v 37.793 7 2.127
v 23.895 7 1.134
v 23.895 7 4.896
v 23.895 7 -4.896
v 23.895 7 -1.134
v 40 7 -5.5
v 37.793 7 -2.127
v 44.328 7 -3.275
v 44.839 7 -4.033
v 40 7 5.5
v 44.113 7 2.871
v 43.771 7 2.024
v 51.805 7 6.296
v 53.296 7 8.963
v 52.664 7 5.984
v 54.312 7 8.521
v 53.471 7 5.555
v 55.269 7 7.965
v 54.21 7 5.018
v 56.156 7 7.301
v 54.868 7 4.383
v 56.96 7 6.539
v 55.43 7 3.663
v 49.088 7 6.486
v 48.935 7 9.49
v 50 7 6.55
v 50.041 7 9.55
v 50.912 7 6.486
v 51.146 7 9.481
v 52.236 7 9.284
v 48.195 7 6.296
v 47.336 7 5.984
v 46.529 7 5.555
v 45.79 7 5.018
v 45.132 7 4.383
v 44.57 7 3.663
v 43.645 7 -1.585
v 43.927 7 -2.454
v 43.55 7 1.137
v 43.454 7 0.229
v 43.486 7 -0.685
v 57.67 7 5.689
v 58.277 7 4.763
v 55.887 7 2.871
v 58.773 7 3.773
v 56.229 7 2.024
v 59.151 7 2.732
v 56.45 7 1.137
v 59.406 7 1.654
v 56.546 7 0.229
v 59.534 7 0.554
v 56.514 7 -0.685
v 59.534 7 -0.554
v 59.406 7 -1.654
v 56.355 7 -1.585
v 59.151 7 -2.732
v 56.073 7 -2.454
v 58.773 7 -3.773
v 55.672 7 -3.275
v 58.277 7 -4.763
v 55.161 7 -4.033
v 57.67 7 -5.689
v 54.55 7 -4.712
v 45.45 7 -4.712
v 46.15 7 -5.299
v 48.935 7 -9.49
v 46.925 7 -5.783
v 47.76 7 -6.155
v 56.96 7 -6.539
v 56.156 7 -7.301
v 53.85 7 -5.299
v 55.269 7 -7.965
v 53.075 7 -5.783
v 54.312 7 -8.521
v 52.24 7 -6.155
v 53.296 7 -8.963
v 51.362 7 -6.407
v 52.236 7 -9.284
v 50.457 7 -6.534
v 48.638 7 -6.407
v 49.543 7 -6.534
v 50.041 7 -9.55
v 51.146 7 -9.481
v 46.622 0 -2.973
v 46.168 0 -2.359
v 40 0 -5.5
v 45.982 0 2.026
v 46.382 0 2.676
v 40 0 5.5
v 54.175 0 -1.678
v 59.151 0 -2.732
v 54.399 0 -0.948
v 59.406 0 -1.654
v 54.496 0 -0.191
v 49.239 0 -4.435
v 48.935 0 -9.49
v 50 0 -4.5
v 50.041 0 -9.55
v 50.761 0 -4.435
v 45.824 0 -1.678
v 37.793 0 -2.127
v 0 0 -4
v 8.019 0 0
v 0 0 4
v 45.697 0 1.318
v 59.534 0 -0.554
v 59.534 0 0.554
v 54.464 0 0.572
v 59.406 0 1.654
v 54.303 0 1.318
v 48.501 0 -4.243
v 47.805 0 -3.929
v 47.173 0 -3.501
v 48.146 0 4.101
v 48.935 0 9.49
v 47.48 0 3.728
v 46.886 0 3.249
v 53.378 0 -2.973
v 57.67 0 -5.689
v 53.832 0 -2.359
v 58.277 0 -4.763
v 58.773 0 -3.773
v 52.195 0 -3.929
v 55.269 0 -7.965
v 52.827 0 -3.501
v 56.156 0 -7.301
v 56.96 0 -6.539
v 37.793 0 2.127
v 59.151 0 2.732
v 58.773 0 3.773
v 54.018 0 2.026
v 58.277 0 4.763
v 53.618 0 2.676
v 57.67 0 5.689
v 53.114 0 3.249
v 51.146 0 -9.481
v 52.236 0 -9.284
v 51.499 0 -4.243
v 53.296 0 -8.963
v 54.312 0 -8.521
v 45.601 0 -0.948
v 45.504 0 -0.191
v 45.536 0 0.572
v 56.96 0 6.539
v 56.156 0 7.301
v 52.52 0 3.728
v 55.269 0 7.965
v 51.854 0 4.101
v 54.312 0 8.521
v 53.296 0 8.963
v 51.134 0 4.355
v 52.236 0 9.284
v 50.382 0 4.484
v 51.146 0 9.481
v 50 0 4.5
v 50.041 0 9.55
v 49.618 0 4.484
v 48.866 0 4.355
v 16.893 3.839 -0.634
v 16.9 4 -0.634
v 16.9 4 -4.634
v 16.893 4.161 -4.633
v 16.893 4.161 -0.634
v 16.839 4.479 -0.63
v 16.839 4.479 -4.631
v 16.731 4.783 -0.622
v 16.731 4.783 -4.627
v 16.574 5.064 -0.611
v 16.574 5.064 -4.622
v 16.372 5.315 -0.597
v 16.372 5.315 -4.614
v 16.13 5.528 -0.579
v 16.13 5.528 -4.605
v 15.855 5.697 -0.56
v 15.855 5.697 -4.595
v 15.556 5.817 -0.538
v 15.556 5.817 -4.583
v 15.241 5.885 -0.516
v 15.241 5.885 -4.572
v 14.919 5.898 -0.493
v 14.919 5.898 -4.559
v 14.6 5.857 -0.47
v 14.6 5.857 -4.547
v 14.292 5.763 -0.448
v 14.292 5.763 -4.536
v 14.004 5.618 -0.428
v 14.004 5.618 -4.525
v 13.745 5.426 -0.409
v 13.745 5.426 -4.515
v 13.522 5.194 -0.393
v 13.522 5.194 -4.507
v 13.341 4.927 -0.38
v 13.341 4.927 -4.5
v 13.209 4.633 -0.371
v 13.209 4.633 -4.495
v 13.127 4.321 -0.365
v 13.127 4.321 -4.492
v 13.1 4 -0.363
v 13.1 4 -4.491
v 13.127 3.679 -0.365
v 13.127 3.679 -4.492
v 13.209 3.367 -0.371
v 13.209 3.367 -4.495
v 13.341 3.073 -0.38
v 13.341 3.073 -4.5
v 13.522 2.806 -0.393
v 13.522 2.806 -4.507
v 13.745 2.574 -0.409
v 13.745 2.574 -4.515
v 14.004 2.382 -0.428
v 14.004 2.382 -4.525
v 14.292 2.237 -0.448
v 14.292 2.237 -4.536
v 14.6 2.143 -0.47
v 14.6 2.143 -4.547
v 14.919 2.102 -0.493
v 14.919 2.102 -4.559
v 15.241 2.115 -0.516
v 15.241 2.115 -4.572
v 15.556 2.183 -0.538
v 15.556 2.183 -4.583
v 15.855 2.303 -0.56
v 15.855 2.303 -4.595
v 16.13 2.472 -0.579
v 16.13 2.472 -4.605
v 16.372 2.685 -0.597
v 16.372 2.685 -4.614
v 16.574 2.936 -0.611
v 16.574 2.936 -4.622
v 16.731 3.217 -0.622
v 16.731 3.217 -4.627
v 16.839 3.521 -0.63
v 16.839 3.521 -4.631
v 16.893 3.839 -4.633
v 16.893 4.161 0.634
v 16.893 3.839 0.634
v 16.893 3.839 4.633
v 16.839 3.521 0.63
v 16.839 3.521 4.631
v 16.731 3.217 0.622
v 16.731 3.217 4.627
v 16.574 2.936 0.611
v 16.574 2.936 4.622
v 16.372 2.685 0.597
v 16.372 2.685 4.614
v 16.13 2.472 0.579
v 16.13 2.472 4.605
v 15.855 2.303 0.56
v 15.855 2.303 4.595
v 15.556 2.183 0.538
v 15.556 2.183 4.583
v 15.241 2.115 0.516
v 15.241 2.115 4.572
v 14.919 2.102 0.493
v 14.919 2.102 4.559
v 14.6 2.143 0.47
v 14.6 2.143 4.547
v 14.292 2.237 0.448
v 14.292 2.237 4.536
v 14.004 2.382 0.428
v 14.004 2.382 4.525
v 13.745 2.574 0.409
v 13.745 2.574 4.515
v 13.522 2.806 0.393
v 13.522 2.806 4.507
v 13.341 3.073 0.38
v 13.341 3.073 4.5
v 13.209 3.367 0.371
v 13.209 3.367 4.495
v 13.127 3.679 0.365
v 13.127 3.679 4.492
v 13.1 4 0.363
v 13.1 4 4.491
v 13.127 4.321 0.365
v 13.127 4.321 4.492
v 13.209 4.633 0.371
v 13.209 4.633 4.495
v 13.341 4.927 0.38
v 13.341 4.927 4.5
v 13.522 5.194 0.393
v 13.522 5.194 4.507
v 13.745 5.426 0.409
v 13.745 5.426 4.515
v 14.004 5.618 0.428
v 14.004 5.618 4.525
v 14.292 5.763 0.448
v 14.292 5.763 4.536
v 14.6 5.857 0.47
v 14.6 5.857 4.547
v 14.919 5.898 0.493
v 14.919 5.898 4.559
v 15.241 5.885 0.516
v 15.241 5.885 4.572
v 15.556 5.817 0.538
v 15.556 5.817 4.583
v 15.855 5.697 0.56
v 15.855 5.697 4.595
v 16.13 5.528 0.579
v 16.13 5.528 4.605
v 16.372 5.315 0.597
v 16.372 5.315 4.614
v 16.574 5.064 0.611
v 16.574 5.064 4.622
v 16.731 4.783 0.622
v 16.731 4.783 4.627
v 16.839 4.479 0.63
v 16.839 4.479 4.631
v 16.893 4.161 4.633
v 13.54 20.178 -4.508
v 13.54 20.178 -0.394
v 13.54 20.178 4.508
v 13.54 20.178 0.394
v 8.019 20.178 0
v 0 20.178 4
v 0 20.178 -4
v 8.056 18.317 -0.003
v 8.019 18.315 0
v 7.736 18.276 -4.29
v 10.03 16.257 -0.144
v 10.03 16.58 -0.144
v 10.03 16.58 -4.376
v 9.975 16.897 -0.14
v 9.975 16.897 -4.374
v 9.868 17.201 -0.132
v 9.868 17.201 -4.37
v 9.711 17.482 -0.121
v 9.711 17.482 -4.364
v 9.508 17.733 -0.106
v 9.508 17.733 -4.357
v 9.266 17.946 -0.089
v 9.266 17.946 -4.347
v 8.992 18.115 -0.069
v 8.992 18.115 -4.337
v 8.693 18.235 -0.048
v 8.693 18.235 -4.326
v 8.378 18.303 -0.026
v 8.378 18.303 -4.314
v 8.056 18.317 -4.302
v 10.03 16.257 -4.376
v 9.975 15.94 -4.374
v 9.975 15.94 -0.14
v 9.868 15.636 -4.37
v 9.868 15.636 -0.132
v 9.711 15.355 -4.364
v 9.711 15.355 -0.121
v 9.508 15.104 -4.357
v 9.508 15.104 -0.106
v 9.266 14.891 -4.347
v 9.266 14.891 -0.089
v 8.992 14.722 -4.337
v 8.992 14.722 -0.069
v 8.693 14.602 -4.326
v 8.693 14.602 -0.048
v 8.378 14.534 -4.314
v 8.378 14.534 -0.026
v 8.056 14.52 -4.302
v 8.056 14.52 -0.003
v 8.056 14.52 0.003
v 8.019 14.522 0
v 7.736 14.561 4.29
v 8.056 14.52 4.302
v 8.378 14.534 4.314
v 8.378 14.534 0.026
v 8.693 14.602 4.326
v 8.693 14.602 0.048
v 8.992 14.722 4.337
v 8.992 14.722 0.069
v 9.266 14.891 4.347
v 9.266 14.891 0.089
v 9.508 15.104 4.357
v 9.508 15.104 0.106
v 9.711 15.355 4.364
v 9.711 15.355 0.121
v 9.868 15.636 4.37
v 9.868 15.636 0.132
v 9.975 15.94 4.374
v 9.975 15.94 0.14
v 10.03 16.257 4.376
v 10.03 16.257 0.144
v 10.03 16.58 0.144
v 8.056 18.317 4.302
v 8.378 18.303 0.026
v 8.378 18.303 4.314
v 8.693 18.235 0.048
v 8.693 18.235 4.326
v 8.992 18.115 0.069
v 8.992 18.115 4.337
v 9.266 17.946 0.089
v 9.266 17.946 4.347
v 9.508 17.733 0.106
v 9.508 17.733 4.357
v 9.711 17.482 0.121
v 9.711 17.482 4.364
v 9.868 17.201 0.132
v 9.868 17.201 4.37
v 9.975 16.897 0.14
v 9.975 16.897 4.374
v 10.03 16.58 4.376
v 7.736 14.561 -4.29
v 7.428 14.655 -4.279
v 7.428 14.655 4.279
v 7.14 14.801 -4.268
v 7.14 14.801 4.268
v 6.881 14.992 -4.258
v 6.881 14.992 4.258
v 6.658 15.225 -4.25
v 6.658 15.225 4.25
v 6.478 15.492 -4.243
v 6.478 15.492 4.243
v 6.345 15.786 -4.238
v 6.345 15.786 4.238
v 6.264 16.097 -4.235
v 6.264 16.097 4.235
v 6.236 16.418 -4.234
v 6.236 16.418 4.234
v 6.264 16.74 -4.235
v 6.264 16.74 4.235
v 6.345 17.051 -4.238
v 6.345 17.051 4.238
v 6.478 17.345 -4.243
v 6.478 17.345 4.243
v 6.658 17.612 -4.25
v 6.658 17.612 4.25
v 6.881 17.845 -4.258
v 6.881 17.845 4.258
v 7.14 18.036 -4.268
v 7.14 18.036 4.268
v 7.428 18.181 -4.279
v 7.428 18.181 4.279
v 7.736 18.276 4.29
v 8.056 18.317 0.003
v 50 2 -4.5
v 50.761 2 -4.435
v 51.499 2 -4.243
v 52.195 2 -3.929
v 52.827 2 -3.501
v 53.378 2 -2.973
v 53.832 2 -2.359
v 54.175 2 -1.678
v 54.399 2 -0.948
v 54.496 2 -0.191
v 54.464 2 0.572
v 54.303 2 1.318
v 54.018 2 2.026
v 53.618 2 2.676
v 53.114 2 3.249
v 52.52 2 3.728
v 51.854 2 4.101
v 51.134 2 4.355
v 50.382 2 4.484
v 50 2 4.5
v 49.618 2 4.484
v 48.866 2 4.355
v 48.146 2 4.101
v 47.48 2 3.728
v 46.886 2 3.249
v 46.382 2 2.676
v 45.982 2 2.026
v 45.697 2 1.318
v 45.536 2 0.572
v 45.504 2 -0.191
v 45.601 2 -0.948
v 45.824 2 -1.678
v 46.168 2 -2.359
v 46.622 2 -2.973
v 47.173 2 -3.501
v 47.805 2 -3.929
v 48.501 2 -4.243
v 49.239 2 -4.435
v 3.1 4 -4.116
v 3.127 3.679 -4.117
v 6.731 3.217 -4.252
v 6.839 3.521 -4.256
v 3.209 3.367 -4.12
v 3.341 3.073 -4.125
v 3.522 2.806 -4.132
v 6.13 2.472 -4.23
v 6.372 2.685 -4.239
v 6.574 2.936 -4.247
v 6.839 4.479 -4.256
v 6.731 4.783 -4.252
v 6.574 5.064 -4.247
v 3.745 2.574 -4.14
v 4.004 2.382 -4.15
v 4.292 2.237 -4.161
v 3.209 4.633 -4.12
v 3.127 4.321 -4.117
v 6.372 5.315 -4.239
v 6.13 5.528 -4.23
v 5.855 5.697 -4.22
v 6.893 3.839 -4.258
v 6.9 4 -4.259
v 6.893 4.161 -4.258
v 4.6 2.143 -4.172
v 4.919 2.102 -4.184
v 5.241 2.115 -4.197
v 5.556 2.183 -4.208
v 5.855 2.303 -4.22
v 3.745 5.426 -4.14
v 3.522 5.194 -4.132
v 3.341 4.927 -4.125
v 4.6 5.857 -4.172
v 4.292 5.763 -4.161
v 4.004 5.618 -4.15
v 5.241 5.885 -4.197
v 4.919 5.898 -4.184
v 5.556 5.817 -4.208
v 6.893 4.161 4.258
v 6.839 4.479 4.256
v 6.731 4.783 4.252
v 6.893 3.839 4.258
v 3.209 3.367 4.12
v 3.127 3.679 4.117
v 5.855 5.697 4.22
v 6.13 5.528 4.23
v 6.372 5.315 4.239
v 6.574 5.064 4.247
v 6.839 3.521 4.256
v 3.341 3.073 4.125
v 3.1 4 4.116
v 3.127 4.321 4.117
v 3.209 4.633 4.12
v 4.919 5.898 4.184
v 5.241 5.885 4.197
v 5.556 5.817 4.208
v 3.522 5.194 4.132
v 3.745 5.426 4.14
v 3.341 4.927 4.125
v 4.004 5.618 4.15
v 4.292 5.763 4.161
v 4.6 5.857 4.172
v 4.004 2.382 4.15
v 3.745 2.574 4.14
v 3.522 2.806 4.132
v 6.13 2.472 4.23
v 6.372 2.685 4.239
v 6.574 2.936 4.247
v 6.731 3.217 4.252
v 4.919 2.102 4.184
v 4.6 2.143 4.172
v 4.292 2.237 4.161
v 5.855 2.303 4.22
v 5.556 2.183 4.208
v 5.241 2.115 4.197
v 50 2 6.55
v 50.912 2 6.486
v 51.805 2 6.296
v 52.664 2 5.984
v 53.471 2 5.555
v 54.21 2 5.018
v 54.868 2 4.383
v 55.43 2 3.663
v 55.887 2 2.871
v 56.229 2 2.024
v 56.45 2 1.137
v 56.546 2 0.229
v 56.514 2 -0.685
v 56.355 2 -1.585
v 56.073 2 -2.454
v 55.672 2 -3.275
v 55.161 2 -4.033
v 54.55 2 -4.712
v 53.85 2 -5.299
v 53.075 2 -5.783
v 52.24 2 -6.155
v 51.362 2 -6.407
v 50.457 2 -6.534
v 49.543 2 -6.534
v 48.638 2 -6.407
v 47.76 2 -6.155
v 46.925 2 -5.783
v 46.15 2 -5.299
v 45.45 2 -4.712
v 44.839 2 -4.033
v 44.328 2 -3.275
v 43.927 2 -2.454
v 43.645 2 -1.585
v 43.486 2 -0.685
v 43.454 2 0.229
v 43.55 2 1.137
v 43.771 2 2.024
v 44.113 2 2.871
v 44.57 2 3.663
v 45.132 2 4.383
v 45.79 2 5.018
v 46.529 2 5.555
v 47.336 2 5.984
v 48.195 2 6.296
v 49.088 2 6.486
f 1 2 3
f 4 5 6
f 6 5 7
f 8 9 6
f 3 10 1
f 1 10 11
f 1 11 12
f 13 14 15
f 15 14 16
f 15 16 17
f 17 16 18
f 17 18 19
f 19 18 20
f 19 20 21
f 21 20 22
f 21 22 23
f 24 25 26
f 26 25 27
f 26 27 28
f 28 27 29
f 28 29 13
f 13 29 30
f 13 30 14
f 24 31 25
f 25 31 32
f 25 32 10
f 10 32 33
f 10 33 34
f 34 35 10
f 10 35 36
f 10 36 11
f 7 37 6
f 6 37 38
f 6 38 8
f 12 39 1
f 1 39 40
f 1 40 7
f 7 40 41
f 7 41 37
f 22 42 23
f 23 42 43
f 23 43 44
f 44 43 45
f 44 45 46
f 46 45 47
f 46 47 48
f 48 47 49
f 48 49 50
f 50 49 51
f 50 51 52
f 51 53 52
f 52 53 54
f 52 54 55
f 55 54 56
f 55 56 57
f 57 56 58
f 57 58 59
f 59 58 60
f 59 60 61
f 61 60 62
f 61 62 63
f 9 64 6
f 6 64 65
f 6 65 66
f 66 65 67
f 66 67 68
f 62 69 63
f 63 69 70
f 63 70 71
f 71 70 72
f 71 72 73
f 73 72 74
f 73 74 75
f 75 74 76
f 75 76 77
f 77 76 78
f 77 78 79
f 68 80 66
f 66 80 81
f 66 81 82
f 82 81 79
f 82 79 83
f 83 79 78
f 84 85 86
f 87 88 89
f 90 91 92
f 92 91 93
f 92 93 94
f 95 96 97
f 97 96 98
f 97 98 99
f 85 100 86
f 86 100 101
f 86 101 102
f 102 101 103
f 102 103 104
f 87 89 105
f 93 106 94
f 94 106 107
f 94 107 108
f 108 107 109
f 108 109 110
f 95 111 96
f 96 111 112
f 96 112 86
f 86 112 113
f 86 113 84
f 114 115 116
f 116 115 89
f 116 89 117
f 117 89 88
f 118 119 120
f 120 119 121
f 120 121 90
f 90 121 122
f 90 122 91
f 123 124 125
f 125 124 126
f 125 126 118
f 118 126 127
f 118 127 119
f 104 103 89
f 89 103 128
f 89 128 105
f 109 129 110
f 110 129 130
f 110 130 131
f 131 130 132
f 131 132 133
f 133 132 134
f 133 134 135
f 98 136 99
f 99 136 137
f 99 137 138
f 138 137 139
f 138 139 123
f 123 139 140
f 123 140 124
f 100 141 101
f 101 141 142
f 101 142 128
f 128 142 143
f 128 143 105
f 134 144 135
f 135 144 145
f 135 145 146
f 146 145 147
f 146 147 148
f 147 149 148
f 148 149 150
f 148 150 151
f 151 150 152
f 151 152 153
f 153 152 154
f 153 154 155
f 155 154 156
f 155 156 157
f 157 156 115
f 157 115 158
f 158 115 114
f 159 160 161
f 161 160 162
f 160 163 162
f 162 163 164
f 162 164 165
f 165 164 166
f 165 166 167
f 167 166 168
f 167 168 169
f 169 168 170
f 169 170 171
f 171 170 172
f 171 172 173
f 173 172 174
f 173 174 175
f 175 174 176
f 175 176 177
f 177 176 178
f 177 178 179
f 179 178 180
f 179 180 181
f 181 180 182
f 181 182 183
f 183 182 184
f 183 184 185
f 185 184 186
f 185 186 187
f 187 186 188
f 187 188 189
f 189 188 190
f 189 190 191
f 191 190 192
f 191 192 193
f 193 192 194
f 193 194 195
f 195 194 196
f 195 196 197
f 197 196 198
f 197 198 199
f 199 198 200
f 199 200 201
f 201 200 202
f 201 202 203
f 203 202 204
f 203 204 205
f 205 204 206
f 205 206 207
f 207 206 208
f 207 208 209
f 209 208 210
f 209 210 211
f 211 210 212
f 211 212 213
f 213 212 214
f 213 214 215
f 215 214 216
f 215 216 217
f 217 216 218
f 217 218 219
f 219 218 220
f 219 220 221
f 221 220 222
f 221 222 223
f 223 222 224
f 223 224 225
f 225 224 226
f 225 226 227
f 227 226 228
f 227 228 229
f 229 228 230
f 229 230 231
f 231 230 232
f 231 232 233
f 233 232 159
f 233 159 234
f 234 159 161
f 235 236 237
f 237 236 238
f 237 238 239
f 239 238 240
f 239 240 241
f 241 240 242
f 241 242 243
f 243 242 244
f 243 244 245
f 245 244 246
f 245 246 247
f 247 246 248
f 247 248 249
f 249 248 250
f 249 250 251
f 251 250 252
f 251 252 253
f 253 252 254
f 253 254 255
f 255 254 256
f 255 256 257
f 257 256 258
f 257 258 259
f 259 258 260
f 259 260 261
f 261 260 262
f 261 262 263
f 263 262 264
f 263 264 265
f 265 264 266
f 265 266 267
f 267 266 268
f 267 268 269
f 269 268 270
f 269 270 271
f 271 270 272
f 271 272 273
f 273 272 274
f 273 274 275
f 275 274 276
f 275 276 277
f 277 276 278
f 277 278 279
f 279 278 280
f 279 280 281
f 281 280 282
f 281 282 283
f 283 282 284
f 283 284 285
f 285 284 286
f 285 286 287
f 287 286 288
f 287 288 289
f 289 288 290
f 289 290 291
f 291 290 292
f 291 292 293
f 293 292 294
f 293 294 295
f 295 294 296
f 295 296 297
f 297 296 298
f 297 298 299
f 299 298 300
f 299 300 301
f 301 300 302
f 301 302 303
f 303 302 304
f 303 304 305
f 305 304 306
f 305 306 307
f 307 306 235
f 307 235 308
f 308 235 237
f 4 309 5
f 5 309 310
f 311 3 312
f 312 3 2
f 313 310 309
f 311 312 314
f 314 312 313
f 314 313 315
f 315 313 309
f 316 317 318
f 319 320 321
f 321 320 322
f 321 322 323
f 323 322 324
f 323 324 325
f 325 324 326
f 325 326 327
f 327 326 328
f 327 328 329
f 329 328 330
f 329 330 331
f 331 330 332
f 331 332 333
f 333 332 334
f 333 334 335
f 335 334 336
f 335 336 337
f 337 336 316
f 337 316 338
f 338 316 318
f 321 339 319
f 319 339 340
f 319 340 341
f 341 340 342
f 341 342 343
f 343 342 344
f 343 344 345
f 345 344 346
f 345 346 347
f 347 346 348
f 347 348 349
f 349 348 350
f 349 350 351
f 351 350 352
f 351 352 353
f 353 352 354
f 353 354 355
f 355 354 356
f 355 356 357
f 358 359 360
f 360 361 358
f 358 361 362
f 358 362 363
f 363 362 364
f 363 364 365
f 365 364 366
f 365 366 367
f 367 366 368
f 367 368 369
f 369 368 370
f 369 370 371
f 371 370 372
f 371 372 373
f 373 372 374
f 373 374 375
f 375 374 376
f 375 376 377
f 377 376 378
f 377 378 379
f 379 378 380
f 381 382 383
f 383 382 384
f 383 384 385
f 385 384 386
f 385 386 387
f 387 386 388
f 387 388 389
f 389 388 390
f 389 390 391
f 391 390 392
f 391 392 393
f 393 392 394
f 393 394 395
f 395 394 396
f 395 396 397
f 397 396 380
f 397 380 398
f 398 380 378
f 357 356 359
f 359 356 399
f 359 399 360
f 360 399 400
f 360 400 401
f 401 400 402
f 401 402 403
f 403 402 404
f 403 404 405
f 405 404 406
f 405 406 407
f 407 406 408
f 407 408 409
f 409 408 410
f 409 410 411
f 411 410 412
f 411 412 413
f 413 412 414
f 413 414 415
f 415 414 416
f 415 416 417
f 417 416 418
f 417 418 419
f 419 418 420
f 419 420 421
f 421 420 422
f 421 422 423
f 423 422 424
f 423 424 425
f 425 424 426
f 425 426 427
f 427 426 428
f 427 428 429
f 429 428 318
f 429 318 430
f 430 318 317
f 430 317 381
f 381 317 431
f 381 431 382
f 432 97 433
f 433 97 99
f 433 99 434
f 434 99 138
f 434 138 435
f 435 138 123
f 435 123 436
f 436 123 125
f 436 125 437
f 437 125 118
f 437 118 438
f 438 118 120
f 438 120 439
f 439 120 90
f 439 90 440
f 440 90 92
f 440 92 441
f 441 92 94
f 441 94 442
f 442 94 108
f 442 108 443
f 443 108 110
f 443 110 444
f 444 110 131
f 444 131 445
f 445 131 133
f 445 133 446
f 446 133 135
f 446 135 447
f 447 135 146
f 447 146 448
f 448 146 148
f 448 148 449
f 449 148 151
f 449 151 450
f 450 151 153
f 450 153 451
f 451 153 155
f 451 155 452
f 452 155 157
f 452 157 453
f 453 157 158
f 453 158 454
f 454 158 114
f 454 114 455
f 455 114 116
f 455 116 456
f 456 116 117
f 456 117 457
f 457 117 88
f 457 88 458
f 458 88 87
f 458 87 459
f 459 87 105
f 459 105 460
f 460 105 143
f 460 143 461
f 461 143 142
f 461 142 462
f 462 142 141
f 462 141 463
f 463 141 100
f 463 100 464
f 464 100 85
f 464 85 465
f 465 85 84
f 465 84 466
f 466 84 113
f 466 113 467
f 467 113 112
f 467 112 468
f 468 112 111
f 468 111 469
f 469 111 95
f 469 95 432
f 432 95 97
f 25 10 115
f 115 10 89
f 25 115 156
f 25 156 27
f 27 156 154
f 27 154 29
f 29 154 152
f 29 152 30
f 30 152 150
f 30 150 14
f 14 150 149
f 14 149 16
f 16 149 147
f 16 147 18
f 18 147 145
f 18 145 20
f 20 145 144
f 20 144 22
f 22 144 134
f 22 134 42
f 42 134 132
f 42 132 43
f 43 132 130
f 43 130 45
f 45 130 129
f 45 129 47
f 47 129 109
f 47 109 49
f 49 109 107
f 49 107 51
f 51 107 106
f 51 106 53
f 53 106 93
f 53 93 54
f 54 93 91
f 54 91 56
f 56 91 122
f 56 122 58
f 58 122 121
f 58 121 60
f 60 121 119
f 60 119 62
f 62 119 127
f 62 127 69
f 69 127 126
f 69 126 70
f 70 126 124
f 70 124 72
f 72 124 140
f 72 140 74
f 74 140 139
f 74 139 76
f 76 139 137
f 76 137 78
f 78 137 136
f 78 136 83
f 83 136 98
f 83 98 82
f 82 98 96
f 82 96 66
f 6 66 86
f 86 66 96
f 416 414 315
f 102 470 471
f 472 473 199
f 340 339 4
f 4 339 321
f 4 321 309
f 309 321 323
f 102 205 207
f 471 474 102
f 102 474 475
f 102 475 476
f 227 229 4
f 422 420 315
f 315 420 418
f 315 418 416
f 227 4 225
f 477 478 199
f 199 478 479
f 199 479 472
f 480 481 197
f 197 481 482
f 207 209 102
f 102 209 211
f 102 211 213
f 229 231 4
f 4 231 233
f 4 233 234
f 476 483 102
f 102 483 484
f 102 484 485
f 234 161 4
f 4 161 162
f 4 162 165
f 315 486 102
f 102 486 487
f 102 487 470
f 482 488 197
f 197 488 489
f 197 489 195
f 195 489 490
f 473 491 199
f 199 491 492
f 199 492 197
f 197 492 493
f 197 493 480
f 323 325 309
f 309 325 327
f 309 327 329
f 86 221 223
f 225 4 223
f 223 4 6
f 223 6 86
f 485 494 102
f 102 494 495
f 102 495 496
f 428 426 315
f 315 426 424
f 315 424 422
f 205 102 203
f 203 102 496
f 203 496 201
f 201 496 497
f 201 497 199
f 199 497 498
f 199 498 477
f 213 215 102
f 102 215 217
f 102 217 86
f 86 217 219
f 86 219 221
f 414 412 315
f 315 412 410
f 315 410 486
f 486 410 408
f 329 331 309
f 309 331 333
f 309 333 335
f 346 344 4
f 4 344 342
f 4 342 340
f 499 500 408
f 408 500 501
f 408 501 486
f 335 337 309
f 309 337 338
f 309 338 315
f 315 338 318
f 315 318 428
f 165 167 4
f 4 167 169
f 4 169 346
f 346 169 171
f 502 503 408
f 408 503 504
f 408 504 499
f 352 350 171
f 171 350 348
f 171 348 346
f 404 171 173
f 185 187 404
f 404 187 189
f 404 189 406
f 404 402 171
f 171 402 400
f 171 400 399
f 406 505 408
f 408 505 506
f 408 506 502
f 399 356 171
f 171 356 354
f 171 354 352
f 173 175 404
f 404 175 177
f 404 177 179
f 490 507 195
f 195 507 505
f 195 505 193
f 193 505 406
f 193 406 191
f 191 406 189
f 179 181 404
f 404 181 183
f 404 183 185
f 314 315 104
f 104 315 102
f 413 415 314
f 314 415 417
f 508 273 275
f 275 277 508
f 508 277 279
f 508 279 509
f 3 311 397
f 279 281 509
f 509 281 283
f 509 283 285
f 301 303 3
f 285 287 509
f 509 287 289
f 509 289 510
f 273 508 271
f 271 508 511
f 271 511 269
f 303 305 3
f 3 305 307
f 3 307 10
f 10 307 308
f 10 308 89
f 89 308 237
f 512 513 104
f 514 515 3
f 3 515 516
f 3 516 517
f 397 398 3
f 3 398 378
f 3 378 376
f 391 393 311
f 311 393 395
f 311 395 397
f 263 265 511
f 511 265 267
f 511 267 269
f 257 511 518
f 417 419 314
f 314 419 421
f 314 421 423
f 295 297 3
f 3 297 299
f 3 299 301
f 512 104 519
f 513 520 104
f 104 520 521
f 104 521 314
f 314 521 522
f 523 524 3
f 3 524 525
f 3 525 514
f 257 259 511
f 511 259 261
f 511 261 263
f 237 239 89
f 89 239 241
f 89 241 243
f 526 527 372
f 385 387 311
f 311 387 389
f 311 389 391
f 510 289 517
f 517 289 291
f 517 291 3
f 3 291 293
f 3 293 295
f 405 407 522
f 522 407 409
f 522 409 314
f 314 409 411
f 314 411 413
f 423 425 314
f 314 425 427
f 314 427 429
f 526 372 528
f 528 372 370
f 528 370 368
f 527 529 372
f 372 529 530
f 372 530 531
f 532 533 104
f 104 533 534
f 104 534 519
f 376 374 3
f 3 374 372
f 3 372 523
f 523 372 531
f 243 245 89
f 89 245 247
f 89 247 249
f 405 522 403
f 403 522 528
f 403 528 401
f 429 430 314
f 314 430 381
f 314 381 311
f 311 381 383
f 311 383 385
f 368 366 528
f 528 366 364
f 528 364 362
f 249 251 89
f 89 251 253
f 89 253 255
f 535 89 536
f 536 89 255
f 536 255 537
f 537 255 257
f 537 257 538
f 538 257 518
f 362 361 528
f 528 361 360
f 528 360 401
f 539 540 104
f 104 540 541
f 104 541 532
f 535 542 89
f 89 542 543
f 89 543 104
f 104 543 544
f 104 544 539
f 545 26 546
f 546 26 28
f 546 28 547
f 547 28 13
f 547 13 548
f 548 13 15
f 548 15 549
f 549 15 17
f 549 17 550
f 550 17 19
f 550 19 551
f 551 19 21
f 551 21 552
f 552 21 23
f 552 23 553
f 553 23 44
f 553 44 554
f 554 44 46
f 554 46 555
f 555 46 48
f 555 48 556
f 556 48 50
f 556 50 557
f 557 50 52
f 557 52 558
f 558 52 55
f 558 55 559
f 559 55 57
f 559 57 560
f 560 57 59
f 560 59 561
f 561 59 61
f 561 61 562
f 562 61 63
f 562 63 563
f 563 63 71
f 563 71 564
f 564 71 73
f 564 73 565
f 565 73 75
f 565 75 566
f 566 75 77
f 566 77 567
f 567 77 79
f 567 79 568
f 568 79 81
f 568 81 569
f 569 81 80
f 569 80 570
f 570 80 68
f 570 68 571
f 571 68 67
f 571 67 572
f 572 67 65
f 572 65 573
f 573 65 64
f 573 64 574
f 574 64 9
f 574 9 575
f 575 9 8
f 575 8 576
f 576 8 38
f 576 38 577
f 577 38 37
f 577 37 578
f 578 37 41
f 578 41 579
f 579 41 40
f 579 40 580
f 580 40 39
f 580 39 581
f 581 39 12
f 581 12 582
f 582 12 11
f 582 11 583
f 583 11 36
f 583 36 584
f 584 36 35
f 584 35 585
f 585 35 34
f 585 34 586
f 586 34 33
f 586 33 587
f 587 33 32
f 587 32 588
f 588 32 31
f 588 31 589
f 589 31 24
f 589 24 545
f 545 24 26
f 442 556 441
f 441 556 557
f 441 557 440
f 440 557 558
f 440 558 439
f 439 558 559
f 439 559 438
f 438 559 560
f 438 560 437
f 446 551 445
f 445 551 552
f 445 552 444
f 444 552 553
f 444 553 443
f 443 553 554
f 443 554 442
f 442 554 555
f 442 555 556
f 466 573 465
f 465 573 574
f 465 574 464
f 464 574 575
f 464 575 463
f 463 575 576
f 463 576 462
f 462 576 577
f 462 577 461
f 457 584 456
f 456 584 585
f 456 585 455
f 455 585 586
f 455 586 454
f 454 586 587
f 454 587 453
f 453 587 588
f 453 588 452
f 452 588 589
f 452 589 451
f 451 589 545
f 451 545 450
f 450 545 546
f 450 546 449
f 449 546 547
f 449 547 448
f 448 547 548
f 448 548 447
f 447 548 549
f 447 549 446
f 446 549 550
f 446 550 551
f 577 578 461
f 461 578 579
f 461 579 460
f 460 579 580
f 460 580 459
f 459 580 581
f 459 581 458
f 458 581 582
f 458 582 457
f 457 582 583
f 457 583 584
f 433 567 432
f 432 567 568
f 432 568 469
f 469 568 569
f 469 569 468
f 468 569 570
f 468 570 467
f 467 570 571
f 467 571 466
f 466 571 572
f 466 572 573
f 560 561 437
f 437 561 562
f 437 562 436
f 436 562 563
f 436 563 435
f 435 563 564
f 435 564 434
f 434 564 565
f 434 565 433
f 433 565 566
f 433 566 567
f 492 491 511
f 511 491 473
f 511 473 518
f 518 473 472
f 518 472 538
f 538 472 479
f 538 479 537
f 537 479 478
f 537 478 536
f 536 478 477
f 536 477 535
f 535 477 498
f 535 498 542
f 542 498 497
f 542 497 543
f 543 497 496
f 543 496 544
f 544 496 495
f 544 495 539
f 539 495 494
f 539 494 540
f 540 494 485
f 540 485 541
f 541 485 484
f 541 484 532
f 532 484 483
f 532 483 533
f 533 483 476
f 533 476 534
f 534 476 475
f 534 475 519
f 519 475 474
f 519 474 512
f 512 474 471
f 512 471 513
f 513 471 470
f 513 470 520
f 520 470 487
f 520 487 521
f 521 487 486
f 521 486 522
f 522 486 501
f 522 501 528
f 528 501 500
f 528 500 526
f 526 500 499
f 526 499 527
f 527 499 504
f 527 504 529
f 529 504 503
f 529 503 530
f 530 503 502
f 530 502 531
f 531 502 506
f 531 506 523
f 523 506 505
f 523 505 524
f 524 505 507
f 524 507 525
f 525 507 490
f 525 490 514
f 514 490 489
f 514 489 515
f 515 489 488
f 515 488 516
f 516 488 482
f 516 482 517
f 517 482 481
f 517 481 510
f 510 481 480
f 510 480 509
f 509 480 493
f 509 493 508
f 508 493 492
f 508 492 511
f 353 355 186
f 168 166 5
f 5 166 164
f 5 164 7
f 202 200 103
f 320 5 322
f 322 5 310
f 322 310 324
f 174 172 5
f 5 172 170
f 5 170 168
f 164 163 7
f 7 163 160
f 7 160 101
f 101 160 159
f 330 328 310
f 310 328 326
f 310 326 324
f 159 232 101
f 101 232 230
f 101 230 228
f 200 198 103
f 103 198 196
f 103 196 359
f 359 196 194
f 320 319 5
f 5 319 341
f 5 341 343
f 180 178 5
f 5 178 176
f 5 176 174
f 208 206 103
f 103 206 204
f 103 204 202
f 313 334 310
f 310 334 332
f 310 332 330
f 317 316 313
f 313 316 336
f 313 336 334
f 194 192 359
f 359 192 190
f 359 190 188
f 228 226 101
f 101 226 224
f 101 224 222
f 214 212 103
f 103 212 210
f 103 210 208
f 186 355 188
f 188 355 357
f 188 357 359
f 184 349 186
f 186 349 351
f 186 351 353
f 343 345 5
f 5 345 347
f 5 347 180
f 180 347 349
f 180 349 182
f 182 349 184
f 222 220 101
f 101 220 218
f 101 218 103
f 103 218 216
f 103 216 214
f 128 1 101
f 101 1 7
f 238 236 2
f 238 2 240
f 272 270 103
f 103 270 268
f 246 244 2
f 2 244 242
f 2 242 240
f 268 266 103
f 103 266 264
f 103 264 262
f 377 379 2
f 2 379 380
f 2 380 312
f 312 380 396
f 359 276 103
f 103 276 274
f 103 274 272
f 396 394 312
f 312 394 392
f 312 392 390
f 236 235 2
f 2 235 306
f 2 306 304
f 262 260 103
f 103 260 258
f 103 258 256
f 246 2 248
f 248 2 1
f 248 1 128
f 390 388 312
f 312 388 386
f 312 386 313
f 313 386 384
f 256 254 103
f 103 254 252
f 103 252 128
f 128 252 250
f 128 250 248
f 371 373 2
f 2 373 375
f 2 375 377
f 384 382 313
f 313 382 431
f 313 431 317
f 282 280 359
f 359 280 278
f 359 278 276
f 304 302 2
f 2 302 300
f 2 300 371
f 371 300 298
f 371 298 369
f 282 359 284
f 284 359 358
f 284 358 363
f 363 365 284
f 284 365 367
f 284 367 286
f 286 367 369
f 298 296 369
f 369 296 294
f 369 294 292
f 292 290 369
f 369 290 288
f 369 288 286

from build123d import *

# Parameters (mm, degrees)
SKETCH8_R                       = 4.5
BOSS_EXTRUDE2_DEPTH             = 7
SKETCH10_R                      = 6.55
CUT_EXTRUDE6_DEPTH              = 5
CUT_EXTRUDE7_DEPTH              = 10
CUT_EXTRUDE7_DEPTH_BACK         = 10
SKETCH11_R                      = 1.9
BOSS_EXTRUDE3_REACH             = 62.716
SKETCH12_R                      = 1.9
BOSS_EXTRUDE3_DIRECTION_2_REACH = 62.716
CUT_EXTRUDE8_REACH              = 65.597


with BuildPart() as part:
    # Sketch8 → Boss-Extrude2 (new body)
    with BuildSketch(Plane(origin=(0, 0, 0), x_dir=(1, 0, 0), z_dir=(0, 1, 0))):
        with BuildLine():
            Line((40, -5.5), (48.935186127, -9.490451592))
            ThreePointArc((48.935186127, -9.490451592), (59.55, 0), (48.935186127, 9.490451592))
            Line((48.935186127, 9.490451592), (40, 5.5))
            Line((40, 5.5), (0, 4))
            Line((0, 4), (0, -4))
            Line((0, -4), (40, -5.5))
        make_face()
        with Locations(Location((50, 0, 0), (0, 0, 270))):
            Circle(SKETCH8_R, mode=Mode.SUBTRACT)
    extrude(amount=BOSS_EXTRUDE2_DEPTH)

    # Sketch10 → Cut-Extrude6 (cut)
    with BuildSketch(Plane(origin=(0, 7, 0), x_dir=(1, 0, 0), z_dir=(0, 1, 0))):
        with Locations(Location((50, 0, 0), (0, 0, 270))):
            Circle(SKETCH10_R)
    extrude(amount=-CUT_EXTRUDE6_DEPTH, mode=Mode.SUBTRACT)

    # Sketch11 → Cut-Extrude7 (cut, two sides: drawn at the far end of the back side and taken through both)
    with BuildSketch(Plane.XY.offset(-CUT_EXTRUDE7_DEPTH_BACK)):
        with Locations(Location((5, 4, 0), (0, 0, 180))):
            Circle(SKETCH11_R)
        with Locations(Location((15, 4, 0), (0, 0, 180))):
            Circle(SKETCH11_R)
    extrude(amount=CUT_EXTRUDE7_DEPTH + CUT_EXTRUDE7_DEPTH_BACK, mode=Mode.SUBTRACT)

    # Boss-Extrude3: up to this plane
    boss_extrude3_end = Plane(origin=(-0.149789359, 7, 3.994382899), z_dir=(0.037473660589094265, 0, -0.9992976157091807))
    # Sketch12 → Boss-Extrude3 (add, up to the surface)
    with BuildSketch(Plane.XY, mode=Mode.PRIVATE) as boss_extrude3_sk1:
        Polygon((23.894935943, 7), (13.540419669, 20.177956538), (0, 20.177956538), (0, 7), align=None)
        with Locations(Location((8.136364364, 16.418485591, 0), (0, 0, 180))):
            Circle(SKETCH12_R, mode=Mode.SUBTRACT)
    boss_extrude3_tool1 = split(extrude(boss_extrude3_sk1.sketch, amount=BOSS_EXTRUDE3_REACH, mode=Mode.PRIVATE), bisect_by=boss_extrude3_end, keep=Keep.BOTH, mode=Mode.PRIVATE)
    add(boss_extrude3_tool1.solids().sort_by_distance((9.667927, 12.815835, 0))[0])

    # Boss-Extrude3 direction 2: up to this plane
    boss_extrude3_direction_2_end = Plane(origin=(-0.149789359, 7, -3.994382899), z_dir=(-0.037473660589094265, 0, -0.9992976157091807))
    # Sketch12 → Boss-Extrude3 direction 2 (add, up to the surface)
    with BuildSketch(Plane.XY, mode=Mode.PRIVATE) as boss_extrude3_direction_2_sk1:
        Polygon((23.894935943, 7), (13.540419669, 20.177956538), (0, 20.177956538), (0, 7), align=None)
        with Locations(Location((8.136364364, 16.418485591, 0), (0, 0, 180))):
            Circle(SKETCH12_R, mode=Mode.SUBTRACT)
    boss_extrude3_direction_2_tool1 = split(extrude(boss_extrude3_direction_2_sk1.sketch, amount=-BOSS_EXTRUDE3_DIRECTION_2_REACH, mode=Mode.PRIVATE), bisect_by=boss_extrude3_direction_2_end, keep=Keep.BOTH, mode=Mode.PRIVATE)
    add(boss_extrude3_direction_2_tool1.solids().sort_by_distance((9.667927, 12.815835, 0))[0])

    # Cut-Extrude8: up to this face of the body (flat: up to its plane)
    cut_extrude8_end = Plane(part.part.faces().sort_by_distance((6.904897785, 20.177956538, 0))[0])
    # Sketch13 → Cut-Extrude8 (cut, up to the picked face)
    with BuildSketch(Plane(origin=(0, 0, 0), x_dir=(1, 0, 0), z_dir=(0, 1, 0)), mode=Mode.PRIVATE) as cut_extrude8_sk1:
        Polygon((8.018762989, 0), (37.792949753, 2.126727626), (37.792949753, -2.126727626), align=None)
    cut_extrude8_tool1 = split(extrude(cut_extrude8_sk1.sketch, amount=CUT_EXTRUDE8_REACH, mode=Mode.PRIVATE), bisect_by=cut_extrude8_end, keep=Keep.BOTH, mode=Mode.PRIVATE)
    add(cut_extrude8_tool1.solids().sort_by(Axis((27.868221, 0, 0), (0, 1, 0)))[0], mode=Mode.SUBTRACT)


solid = part.part
